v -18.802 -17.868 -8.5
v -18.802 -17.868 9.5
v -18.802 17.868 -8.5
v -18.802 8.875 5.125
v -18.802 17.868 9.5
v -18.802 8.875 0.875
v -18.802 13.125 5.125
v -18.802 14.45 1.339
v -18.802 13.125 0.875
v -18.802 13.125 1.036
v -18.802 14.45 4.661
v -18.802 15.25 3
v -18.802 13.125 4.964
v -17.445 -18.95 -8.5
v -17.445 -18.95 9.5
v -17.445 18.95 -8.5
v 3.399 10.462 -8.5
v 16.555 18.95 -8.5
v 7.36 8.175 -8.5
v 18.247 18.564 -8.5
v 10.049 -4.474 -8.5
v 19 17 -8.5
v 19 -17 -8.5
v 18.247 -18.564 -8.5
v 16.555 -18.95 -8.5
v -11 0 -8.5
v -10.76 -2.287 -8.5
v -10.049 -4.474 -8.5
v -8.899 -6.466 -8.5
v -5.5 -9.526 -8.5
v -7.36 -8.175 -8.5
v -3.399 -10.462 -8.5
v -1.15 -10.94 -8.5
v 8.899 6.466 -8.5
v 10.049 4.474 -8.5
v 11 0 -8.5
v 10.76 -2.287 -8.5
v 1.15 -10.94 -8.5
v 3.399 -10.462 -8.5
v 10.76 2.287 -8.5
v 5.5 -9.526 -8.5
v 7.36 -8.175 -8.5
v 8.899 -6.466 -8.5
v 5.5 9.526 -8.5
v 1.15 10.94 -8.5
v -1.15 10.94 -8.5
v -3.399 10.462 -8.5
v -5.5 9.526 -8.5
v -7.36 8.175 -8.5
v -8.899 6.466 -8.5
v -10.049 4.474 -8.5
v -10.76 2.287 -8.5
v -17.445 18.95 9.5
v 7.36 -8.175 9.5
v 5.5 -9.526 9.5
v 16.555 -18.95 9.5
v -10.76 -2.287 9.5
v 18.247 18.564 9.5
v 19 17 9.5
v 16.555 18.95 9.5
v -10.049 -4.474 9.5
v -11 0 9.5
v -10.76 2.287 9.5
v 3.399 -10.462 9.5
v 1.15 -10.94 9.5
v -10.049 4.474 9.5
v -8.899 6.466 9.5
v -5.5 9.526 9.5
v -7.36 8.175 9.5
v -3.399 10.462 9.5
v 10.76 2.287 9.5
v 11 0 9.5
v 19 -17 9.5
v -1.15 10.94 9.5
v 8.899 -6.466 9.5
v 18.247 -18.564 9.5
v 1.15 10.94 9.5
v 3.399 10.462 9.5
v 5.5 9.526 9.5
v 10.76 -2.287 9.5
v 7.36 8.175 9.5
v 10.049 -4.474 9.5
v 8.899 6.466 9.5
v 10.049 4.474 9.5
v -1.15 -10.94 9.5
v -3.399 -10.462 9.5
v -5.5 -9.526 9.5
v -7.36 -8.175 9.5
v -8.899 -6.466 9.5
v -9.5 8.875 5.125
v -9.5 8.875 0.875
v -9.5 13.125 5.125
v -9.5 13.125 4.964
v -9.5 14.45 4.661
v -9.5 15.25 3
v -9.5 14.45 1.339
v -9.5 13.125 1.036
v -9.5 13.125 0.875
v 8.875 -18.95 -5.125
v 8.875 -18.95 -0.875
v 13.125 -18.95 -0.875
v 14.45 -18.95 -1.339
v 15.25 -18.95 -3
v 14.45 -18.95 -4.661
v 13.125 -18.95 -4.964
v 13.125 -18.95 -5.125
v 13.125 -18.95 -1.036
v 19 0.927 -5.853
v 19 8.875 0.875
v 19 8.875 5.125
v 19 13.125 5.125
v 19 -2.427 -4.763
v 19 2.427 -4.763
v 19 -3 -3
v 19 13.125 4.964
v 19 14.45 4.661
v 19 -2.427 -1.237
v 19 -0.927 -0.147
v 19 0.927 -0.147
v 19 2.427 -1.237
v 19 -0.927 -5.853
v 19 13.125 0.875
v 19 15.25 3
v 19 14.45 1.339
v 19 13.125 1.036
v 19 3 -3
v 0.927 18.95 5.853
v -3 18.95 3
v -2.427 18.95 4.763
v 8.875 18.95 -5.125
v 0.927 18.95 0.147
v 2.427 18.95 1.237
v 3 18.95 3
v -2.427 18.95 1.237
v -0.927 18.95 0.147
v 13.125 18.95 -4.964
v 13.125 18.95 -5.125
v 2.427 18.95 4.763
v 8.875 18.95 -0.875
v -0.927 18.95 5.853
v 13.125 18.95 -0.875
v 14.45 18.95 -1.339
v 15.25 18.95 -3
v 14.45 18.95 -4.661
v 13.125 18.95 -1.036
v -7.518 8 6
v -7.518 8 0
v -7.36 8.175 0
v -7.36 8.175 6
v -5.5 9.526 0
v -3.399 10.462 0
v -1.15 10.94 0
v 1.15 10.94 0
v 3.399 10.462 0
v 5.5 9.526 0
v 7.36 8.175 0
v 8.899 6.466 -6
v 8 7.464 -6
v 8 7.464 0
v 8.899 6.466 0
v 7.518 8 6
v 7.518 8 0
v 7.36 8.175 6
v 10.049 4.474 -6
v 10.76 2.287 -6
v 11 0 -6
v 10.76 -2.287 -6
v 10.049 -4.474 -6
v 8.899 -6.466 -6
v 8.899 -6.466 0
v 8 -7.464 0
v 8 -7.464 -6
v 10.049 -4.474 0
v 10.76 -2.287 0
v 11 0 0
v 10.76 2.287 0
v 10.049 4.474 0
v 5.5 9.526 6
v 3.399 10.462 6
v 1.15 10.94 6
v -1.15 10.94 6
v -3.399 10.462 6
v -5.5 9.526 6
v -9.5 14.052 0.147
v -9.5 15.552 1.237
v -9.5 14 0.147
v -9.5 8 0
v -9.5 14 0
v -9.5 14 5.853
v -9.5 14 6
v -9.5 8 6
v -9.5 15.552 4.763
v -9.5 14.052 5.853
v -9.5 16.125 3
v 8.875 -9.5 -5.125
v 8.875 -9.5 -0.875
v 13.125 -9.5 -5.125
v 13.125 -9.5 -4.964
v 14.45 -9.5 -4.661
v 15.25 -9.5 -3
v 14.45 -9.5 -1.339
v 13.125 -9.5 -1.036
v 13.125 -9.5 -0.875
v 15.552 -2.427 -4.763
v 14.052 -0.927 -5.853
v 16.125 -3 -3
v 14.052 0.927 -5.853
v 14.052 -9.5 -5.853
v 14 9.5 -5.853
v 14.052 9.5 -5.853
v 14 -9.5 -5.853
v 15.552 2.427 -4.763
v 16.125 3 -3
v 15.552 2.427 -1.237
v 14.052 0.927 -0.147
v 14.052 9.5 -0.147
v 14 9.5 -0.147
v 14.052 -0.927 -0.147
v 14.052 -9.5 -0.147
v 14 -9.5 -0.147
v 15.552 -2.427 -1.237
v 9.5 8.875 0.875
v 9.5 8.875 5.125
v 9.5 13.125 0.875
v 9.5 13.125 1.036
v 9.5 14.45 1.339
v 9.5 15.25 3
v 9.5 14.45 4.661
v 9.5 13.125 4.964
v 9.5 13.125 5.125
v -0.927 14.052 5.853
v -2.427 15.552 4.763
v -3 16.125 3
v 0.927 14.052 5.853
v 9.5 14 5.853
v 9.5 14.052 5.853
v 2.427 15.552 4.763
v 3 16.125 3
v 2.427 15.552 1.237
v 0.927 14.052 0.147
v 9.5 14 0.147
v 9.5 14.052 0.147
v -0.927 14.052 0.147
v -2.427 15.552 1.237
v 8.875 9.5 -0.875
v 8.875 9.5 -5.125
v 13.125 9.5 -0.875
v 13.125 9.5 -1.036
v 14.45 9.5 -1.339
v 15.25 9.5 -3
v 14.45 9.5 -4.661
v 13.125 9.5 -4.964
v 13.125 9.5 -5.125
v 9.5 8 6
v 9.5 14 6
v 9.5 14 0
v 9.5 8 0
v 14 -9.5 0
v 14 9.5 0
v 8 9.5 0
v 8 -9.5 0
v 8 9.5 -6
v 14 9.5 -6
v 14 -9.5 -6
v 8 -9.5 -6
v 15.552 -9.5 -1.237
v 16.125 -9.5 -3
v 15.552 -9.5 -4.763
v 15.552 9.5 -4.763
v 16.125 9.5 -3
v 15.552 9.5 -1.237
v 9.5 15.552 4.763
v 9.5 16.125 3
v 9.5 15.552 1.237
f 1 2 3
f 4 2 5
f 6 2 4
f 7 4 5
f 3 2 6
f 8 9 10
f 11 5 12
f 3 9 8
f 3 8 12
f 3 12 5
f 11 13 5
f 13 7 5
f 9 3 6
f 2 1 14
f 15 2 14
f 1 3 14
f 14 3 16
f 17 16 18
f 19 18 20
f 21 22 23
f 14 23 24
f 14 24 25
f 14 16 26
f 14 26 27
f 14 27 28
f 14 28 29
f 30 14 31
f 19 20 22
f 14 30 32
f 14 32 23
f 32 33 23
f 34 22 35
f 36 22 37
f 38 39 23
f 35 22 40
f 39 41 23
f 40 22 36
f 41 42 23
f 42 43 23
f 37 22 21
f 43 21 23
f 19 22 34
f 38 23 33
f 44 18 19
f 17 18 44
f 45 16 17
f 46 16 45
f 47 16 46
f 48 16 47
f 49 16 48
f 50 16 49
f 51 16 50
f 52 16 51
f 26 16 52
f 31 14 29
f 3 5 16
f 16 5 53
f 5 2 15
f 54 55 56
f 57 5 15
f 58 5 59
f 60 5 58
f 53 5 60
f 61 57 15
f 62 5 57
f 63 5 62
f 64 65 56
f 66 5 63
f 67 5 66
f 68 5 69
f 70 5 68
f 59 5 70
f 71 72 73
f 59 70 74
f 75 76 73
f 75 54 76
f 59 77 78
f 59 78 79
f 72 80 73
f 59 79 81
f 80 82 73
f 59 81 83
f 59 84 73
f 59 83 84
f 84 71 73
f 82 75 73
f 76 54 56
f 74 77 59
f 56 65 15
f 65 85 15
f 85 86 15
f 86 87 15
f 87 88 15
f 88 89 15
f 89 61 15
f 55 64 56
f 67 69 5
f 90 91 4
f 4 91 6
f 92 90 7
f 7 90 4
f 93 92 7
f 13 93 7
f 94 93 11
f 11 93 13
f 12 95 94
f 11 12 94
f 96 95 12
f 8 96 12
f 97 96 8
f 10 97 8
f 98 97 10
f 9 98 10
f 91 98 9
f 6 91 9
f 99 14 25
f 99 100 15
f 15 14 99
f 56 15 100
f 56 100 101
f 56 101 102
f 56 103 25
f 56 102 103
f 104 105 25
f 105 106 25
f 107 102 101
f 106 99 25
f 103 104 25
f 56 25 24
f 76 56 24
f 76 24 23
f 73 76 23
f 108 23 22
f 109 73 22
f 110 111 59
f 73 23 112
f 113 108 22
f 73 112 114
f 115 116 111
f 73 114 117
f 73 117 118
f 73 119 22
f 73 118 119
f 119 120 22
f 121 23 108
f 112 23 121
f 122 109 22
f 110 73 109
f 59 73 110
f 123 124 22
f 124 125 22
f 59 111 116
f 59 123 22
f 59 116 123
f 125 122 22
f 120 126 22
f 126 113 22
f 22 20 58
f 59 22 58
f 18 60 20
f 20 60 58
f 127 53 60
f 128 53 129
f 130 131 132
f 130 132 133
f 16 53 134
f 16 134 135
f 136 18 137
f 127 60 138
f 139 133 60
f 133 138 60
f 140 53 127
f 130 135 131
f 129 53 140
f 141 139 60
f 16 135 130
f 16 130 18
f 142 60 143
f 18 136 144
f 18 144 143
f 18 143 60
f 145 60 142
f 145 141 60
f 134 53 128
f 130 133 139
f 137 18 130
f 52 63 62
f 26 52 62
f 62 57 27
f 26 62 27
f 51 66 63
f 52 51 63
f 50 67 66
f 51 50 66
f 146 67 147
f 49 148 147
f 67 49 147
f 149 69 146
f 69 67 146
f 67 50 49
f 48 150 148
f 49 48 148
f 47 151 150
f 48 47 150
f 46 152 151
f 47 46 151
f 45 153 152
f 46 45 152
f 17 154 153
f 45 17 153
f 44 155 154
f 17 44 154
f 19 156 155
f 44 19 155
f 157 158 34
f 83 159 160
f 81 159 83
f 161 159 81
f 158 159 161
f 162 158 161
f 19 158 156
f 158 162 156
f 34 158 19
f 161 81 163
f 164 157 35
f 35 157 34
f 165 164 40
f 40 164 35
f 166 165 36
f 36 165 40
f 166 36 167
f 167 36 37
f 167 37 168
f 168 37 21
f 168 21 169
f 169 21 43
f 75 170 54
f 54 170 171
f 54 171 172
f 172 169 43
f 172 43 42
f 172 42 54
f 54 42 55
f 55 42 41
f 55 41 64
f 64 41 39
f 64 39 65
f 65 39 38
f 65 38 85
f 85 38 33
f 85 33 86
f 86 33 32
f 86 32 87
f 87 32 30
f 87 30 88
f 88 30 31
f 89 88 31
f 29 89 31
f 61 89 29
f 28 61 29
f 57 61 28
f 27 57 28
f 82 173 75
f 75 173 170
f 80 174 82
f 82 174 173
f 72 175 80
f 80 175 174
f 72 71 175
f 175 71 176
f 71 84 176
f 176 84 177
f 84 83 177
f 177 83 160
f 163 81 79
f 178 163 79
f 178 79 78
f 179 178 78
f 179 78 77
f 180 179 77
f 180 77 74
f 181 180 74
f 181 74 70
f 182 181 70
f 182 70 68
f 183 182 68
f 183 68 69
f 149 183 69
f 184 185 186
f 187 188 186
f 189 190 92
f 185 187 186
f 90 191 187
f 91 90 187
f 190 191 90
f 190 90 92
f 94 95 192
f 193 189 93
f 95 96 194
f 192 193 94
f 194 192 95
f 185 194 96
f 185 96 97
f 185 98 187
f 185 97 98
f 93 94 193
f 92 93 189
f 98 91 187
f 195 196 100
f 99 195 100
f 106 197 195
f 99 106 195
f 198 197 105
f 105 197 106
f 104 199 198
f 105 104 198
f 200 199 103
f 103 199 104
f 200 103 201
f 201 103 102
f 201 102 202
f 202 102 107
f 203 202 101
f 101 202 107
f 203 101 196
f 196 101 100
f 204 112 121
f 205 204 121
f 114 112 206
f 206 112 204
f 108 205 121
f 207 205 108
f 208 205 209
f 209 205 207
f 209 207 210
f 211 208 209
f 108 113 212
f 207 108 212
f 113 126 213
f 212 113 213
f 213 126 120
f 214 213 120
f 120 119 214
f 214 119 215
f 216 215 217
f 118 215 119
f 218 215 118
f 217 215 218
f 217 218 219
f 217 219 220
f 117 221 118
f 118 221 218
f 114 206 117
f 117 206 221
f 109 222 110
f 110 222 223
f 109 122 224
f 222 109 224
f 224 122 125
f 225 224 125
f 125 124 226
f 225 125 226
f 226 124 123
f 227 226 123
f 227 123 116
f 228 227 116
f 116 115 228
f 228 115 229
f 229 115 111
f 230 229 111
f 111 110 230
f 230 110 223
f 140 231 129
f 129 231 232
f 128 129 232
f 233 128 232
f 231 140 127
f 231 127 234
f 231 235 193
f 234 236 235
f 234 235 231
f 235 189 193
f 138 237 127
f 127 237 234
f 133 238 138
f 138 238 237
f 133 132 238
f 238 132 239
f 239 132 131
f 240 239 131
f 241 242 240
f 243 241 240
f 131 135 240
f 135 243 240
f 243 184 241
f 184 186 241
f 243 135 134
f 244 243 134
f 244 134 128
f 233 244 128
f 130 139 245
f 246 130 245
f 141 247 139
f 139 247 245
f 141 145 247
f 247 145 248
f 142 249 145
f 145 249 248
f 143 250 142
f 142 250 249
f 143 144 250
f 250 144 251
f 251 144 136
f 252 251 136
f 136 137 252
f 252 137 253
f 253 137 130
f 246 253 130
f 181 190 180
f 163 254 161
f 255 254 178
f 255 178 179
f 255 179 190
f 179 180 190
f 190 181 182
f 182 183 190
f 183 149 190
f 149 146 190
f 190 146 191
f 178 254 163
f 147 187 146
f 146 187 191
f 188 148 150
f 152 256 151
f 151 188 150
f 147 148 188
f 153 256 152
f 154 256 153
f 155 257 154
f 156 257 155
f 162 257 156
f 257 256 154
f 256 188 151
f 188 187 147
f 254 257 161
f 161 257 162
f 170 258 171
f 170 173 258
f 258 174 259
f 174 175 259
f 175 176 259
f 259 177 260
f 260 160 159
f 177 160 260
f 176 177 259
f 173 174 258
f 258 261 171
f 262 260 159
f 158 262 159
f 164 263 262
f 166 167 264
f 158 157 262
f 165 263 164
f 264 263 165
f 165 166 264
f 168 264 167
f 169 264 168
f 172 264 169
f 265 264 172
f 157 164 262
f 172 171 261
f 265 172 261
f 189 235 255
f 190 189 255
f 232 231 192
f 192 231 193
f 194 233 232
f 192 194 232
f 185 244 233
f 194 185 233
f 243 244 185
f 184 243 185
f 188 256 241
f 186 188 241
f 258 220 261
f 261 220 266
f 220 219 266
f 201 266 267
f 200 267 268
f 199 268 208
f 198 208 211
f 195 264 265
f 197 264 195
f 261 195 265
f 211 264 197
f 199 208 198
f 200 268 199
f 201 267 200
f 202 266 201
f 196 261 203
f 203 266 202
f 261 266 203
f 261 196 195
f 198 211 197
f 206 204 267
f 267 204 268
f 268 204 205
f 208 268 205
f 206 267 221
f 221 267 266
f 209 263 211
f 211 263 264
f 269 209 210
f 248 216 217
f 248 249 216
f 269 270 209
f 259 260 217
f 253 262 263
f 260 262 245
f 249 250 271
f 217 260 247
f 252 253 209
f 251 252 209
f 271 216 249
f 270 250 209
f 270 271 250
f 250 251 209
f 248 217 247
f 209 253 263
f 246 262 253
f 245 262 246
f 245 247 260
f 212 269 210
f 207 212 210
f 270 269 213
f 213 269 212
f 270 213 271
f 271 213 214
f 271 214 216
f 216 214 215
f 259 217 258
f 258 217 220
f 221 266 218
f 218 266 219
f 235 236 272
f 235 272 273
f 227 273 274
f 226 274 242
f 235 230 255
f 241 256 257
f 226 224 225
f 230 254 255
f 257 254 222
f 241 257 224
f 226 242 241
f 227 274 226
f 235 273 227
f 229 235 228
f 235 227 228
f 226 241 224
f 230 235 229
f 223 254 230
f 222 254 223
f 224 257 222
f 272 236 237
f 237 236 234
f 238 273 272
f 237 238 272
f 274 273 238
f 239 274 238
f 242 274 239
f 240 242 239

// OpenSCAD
//Element Holder for cross-yagi
//SatNOGS project
//cshields edits, based on
//https://github.com/satnogs/satnogs-hardware/blob/master/Antennas/Yagi/Cross-Yagi-UHF-v1/src/satnogs-radiator-holder.scad

width = 38;
mast = 22;
element = 4.25;

module element_gutter() {
	union() {
		translate([mast/2+element/2,0,0])
			cylinder(d=element,h=width+1,center=true);
		translate([mast/2+element/2,0,0])
			cylinder(d=6,h=width/2,center=true);
		translate([mast/2,0,0])
			cube([element,element,width+1],center=true);
		translate([mast/2,0,0])
			cube([6,6,width/2],center=true);
		rotate(90,[0,1,0])
			translate([0,0,mast/2])
			cylinder(d=6,h=mast,center=true);
	}
}

module holder() {
	difference() {
		minkowski() {
			cube([34,34,17], center=true);
			cylinder(r=2,h=1);
		}
		cylinder(d=mast,h=width,center=true);
		translate([0,0,-3])
			rotate(90,[1,0,0])
				element_gutter();
		rotate(90,[0,0,1])
			translate([0,0,3])
				rotate(90,[1,0,0])
					element_gutter();
	}
}
	

holder();
